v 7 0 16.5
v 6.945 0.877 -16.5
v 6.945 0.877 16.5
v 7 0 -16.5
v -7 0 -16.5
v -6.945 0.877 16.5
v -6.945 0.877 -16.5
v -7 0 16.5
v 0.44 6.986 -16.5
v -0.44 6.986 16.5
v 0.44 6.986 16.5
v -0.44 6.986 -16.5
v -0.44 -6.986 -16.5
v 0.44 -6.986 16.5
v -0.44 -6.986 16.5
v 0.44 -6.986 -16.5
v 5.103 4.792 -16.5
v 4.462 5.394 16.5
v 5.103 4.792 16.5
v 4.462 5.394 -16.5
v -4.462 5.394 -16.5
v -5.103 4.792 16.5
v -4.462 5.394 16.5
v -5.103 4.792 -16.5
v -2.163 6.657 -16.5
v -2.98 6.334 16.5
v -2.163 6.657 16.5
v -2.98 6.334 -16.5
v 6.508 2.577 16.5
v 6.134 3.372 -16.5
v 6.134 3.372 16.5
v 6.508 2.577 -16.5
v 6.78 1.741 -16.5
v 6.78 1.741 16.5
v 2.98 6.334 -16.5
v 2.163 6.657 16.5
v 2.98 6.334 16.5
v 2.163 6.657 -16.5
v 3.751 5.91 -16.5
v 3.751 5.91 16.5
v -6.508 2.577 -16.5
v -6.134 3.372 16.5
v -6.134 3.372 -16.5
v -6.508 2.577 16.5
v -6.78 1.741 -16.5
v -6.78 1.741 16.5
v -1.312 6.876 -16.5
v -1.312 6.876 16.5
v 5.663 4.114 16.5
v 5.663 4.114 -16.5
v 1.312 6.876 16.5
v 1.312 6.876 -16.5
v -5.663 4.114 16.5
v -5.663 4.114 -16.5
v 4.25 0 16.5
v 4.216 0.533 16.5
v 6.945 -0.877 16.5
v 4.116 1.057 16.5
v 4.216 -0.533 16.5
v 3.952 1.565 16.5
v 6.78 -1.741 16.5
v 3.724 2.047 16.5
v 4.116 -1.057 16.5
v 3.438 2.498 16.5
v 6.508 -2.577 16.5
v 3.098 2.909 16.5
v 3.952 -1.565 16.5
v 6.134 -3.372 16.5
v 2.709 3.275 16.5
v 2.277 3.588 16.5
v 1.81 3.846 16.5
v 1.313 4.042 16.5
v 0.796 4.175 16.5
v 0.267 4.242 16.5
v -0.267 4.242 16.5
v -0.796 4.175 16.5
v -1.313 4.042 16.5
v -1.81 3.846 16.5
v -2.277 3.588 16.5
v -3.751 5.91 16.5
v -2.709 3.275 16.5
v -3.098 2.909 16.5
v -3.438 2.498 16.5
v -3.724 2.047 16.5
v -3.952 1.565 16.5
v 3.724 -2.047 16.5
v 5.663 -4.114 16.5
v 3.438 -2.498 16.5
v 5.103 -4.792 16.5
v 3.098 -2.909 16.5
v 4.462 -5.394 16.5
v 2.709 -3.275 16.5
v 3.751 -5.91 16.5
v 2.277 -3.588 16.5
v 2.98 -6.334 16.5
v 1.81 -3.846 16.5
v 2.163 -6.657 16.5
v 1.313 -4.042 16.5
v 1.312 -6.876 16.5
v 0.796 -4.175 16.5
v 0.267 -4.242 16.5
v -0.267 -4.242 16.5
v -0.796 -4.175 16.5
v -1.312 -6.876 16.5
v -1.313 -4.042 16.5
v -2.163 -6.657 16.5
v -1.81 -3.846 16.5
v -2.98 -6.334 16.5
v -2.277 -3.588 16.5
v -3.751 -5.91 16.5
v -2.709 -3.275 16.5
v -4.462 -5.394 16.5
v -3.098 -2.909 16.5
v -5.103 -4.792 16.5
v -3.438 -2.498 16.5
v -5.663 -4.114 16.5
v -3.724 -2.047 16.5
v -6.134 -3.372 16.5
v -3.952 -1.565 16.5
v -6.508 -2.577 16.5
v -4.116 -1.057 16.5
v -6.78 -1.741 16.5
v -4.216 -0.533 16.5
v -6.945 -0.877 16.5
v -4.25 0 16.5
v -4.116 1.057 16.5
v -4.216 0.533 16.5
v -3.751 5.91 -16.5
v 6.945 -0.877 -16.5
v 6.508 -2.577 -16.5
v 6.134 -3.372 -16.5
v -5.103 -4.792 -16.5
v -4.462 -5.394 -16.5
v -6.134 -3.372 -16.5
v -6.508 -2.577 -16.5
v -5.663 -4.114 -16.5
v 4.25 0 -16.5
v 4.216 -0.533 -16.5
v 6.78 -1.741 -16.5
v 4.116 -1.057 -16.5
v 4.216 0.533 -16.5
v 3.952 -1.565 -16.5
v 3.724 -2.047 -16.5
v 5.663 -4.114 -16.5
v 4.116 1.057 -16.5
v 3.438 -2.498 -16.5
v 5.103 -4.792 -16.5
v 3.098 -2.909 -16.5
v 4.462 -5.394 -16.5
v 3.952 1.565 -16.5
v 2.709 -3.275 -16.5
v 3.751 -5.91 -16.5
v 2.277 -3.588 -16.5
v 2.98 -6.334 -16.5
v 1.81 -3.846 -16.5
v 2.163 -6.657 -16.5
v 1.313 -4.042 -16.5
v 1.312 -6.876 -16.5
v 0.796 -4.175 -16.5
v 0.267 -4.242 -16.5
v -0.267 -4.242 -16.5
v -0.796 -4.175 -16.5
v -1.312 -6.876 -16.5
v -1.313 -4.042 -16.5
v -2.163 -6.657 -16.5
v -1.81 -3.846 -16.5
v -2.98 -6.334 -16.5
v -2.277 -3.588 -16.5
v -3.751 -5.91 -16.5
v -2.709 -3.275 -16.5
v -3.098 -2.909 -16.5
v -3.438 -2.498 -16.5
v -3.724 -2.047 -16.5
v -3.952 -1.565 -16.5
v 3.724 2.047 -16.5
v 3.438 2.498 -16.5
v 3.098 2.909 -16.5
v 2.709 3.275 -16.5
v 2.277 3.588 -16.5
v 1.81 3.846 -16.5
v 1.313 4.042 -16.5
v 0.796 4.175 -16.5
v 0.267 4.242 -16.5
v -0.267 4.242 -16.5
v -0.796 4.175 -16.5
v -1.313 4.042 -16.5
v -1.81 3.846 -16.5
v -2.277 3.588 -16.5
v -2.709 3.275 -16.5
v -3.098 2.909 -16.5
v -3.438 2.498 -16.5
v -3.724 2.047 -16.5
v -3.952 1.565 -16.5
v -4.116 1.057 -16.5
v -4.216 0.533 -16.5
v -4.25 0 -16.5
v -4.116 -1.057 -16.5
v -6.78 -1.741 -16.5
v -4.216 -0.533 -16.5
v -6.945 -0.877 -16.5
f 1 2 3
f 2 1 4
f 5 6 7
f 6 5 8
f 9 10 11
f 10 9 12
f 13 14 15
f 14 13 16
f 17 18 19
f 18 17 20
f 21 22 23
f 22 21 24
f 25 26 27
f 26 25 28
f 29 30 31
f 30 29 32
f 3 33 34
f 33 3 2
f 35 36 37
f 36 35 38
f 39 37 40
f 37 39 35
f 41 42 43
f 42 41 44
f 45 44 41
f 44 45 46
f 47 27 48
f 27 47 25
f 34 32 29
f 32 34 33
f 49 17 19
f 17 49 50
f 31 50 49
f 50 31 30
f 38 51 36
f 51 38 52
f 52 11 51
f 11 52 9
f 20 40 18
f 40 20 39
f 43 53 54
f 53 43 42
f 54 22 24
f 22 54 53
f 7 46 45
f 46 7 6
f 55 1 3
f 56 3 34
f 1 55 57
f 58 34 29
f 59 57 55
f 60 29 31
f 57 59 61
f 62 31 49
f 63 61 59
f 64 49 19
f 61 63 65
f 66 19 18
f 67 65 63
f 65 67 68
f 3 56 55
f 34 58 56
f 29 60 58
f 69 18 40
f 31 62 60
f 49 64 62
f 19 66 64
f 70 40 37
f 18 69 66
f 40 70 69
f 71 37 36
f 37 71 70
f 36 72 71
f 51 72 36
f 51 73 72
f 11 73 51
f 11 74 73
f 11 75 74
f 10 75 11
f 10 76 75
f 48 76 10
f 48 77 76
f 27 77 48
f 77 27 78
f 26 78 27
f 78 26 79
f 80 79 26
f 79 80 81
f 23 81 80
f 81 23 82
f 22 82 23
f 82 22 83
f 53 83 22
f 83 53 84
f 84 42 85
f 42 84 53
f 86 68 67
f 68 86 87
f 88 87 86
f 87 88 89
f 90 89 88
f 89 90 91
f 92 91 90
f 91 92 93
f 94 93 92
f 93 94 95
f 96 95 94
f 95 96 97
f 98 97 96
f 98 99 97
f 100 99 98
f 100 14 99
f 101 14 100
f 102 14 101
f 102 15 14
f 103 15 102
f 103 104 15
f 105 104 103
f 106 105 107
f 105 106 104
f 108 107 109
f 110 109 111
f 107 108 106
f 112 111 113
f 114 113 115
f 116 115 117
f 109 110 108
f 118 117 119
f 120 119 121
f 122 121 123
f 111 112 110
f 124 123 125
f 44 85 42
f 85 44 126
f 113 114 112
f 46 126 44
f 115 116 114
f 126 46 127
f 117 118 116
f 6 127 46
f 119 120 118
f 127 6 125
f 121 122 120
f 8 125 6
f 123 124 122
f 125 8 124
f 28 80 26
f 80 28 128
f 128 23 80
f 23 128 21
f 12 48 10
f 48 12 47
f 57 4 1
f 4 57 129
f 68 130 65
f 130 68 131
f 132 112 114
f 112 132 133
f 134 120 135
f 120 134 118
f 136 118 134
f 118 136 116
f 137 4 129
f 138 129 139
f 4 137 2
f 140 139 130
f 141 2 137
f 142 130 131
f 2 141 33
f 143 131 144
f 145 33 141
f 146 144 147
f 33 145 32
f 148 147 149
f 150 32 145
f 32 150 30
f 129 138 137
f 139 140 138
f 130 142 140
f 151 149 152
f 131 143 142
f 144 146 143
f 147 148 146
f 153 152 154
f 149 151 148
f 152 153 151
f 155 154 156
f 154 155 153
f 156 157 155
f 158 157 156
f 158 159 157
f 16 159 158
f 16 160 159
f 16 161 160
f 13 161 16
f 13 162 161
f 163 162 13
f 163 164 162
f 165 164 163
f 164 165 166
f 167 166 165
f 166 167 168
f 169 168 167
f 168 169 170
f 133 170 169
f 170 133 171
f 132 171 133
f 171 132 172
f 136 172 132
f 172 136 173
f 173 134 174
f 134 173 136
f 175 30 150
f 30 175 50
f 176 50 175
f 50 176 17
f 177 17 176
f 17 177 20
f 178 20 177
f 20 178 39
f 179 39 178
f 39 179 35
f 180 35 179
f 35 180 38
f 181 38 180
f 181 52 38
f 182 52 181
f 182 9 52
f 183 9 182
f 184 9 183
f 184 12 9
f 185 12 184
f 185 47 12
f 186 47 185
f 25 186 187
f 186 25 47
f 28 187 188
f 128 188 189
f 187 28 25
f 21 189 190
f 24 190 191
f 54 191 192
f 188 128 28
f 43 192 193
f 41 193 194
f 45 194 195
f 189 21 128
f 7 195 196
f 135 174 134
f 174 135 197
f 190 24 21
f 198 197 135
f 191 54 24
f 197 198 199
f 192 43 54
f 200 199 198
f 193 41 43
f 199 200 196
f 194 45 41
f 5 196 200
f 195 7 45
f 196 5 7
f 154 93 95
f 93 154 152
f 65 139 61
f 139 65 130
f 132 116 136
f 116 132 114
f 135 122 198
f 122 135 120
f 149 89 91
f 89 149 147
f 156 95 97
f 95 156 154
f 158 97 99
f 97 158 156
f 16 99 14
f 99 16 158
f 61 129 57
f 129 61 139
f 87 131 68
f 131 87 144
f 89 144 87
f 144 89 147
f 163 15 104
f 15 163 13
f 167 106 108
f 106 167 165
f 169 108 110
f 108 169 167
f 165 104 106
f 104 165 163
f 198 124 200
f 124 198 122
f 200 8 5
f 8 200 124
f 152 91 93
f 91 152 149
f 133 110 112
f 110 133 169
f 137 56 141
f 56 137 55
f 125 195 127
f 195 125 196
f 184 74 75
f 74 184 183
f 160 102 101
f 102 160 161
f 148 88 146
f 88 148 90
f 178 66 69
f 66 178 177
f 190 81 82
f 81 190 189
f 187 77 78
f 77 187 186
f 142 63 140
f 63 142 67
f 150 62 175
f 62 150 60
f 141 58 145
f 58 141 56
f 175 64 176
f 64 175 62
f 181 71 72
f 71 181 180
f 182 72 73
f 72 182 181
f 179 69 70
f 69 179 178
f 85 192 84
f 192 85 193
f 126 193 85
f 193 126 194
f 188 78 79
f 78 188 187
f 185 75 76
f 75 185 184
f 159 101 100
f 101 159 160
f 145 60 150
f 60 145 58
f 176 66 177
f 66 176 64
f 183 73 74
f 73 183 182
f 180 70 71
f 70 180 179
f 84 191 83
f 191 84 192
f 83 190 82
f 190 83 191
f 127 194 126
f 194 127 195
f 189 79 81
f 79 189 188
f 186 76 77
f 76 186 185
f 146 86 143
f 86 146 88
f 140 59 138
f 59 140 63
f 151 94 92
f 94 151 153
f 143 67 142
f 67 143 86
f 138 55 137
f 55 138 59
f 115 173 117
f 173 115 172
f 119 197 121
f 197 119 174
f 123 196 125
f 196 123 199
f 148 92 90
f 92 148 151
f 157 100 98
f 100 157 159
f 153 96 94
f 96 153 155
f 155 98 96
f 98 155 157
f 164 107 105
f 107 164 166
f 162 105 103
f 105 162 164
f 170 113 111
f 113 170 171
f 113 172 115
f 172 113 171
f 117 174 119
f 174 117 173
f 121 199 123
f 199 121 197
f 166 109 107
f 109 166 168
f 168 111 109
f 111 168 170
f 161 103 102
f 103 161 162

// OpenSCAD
$fn = 50;


difference() {
	union() {
		translate(v = [0, 0, -16.5000000000]) {
			cylinder(h = 33, r = 7.0000000000);
		}
	}
	union() {
		translate(v = [0, 0, -100.0000000000]) {
			cylinder(h = 200, r = 4.2500000000);
		}
	}
}
